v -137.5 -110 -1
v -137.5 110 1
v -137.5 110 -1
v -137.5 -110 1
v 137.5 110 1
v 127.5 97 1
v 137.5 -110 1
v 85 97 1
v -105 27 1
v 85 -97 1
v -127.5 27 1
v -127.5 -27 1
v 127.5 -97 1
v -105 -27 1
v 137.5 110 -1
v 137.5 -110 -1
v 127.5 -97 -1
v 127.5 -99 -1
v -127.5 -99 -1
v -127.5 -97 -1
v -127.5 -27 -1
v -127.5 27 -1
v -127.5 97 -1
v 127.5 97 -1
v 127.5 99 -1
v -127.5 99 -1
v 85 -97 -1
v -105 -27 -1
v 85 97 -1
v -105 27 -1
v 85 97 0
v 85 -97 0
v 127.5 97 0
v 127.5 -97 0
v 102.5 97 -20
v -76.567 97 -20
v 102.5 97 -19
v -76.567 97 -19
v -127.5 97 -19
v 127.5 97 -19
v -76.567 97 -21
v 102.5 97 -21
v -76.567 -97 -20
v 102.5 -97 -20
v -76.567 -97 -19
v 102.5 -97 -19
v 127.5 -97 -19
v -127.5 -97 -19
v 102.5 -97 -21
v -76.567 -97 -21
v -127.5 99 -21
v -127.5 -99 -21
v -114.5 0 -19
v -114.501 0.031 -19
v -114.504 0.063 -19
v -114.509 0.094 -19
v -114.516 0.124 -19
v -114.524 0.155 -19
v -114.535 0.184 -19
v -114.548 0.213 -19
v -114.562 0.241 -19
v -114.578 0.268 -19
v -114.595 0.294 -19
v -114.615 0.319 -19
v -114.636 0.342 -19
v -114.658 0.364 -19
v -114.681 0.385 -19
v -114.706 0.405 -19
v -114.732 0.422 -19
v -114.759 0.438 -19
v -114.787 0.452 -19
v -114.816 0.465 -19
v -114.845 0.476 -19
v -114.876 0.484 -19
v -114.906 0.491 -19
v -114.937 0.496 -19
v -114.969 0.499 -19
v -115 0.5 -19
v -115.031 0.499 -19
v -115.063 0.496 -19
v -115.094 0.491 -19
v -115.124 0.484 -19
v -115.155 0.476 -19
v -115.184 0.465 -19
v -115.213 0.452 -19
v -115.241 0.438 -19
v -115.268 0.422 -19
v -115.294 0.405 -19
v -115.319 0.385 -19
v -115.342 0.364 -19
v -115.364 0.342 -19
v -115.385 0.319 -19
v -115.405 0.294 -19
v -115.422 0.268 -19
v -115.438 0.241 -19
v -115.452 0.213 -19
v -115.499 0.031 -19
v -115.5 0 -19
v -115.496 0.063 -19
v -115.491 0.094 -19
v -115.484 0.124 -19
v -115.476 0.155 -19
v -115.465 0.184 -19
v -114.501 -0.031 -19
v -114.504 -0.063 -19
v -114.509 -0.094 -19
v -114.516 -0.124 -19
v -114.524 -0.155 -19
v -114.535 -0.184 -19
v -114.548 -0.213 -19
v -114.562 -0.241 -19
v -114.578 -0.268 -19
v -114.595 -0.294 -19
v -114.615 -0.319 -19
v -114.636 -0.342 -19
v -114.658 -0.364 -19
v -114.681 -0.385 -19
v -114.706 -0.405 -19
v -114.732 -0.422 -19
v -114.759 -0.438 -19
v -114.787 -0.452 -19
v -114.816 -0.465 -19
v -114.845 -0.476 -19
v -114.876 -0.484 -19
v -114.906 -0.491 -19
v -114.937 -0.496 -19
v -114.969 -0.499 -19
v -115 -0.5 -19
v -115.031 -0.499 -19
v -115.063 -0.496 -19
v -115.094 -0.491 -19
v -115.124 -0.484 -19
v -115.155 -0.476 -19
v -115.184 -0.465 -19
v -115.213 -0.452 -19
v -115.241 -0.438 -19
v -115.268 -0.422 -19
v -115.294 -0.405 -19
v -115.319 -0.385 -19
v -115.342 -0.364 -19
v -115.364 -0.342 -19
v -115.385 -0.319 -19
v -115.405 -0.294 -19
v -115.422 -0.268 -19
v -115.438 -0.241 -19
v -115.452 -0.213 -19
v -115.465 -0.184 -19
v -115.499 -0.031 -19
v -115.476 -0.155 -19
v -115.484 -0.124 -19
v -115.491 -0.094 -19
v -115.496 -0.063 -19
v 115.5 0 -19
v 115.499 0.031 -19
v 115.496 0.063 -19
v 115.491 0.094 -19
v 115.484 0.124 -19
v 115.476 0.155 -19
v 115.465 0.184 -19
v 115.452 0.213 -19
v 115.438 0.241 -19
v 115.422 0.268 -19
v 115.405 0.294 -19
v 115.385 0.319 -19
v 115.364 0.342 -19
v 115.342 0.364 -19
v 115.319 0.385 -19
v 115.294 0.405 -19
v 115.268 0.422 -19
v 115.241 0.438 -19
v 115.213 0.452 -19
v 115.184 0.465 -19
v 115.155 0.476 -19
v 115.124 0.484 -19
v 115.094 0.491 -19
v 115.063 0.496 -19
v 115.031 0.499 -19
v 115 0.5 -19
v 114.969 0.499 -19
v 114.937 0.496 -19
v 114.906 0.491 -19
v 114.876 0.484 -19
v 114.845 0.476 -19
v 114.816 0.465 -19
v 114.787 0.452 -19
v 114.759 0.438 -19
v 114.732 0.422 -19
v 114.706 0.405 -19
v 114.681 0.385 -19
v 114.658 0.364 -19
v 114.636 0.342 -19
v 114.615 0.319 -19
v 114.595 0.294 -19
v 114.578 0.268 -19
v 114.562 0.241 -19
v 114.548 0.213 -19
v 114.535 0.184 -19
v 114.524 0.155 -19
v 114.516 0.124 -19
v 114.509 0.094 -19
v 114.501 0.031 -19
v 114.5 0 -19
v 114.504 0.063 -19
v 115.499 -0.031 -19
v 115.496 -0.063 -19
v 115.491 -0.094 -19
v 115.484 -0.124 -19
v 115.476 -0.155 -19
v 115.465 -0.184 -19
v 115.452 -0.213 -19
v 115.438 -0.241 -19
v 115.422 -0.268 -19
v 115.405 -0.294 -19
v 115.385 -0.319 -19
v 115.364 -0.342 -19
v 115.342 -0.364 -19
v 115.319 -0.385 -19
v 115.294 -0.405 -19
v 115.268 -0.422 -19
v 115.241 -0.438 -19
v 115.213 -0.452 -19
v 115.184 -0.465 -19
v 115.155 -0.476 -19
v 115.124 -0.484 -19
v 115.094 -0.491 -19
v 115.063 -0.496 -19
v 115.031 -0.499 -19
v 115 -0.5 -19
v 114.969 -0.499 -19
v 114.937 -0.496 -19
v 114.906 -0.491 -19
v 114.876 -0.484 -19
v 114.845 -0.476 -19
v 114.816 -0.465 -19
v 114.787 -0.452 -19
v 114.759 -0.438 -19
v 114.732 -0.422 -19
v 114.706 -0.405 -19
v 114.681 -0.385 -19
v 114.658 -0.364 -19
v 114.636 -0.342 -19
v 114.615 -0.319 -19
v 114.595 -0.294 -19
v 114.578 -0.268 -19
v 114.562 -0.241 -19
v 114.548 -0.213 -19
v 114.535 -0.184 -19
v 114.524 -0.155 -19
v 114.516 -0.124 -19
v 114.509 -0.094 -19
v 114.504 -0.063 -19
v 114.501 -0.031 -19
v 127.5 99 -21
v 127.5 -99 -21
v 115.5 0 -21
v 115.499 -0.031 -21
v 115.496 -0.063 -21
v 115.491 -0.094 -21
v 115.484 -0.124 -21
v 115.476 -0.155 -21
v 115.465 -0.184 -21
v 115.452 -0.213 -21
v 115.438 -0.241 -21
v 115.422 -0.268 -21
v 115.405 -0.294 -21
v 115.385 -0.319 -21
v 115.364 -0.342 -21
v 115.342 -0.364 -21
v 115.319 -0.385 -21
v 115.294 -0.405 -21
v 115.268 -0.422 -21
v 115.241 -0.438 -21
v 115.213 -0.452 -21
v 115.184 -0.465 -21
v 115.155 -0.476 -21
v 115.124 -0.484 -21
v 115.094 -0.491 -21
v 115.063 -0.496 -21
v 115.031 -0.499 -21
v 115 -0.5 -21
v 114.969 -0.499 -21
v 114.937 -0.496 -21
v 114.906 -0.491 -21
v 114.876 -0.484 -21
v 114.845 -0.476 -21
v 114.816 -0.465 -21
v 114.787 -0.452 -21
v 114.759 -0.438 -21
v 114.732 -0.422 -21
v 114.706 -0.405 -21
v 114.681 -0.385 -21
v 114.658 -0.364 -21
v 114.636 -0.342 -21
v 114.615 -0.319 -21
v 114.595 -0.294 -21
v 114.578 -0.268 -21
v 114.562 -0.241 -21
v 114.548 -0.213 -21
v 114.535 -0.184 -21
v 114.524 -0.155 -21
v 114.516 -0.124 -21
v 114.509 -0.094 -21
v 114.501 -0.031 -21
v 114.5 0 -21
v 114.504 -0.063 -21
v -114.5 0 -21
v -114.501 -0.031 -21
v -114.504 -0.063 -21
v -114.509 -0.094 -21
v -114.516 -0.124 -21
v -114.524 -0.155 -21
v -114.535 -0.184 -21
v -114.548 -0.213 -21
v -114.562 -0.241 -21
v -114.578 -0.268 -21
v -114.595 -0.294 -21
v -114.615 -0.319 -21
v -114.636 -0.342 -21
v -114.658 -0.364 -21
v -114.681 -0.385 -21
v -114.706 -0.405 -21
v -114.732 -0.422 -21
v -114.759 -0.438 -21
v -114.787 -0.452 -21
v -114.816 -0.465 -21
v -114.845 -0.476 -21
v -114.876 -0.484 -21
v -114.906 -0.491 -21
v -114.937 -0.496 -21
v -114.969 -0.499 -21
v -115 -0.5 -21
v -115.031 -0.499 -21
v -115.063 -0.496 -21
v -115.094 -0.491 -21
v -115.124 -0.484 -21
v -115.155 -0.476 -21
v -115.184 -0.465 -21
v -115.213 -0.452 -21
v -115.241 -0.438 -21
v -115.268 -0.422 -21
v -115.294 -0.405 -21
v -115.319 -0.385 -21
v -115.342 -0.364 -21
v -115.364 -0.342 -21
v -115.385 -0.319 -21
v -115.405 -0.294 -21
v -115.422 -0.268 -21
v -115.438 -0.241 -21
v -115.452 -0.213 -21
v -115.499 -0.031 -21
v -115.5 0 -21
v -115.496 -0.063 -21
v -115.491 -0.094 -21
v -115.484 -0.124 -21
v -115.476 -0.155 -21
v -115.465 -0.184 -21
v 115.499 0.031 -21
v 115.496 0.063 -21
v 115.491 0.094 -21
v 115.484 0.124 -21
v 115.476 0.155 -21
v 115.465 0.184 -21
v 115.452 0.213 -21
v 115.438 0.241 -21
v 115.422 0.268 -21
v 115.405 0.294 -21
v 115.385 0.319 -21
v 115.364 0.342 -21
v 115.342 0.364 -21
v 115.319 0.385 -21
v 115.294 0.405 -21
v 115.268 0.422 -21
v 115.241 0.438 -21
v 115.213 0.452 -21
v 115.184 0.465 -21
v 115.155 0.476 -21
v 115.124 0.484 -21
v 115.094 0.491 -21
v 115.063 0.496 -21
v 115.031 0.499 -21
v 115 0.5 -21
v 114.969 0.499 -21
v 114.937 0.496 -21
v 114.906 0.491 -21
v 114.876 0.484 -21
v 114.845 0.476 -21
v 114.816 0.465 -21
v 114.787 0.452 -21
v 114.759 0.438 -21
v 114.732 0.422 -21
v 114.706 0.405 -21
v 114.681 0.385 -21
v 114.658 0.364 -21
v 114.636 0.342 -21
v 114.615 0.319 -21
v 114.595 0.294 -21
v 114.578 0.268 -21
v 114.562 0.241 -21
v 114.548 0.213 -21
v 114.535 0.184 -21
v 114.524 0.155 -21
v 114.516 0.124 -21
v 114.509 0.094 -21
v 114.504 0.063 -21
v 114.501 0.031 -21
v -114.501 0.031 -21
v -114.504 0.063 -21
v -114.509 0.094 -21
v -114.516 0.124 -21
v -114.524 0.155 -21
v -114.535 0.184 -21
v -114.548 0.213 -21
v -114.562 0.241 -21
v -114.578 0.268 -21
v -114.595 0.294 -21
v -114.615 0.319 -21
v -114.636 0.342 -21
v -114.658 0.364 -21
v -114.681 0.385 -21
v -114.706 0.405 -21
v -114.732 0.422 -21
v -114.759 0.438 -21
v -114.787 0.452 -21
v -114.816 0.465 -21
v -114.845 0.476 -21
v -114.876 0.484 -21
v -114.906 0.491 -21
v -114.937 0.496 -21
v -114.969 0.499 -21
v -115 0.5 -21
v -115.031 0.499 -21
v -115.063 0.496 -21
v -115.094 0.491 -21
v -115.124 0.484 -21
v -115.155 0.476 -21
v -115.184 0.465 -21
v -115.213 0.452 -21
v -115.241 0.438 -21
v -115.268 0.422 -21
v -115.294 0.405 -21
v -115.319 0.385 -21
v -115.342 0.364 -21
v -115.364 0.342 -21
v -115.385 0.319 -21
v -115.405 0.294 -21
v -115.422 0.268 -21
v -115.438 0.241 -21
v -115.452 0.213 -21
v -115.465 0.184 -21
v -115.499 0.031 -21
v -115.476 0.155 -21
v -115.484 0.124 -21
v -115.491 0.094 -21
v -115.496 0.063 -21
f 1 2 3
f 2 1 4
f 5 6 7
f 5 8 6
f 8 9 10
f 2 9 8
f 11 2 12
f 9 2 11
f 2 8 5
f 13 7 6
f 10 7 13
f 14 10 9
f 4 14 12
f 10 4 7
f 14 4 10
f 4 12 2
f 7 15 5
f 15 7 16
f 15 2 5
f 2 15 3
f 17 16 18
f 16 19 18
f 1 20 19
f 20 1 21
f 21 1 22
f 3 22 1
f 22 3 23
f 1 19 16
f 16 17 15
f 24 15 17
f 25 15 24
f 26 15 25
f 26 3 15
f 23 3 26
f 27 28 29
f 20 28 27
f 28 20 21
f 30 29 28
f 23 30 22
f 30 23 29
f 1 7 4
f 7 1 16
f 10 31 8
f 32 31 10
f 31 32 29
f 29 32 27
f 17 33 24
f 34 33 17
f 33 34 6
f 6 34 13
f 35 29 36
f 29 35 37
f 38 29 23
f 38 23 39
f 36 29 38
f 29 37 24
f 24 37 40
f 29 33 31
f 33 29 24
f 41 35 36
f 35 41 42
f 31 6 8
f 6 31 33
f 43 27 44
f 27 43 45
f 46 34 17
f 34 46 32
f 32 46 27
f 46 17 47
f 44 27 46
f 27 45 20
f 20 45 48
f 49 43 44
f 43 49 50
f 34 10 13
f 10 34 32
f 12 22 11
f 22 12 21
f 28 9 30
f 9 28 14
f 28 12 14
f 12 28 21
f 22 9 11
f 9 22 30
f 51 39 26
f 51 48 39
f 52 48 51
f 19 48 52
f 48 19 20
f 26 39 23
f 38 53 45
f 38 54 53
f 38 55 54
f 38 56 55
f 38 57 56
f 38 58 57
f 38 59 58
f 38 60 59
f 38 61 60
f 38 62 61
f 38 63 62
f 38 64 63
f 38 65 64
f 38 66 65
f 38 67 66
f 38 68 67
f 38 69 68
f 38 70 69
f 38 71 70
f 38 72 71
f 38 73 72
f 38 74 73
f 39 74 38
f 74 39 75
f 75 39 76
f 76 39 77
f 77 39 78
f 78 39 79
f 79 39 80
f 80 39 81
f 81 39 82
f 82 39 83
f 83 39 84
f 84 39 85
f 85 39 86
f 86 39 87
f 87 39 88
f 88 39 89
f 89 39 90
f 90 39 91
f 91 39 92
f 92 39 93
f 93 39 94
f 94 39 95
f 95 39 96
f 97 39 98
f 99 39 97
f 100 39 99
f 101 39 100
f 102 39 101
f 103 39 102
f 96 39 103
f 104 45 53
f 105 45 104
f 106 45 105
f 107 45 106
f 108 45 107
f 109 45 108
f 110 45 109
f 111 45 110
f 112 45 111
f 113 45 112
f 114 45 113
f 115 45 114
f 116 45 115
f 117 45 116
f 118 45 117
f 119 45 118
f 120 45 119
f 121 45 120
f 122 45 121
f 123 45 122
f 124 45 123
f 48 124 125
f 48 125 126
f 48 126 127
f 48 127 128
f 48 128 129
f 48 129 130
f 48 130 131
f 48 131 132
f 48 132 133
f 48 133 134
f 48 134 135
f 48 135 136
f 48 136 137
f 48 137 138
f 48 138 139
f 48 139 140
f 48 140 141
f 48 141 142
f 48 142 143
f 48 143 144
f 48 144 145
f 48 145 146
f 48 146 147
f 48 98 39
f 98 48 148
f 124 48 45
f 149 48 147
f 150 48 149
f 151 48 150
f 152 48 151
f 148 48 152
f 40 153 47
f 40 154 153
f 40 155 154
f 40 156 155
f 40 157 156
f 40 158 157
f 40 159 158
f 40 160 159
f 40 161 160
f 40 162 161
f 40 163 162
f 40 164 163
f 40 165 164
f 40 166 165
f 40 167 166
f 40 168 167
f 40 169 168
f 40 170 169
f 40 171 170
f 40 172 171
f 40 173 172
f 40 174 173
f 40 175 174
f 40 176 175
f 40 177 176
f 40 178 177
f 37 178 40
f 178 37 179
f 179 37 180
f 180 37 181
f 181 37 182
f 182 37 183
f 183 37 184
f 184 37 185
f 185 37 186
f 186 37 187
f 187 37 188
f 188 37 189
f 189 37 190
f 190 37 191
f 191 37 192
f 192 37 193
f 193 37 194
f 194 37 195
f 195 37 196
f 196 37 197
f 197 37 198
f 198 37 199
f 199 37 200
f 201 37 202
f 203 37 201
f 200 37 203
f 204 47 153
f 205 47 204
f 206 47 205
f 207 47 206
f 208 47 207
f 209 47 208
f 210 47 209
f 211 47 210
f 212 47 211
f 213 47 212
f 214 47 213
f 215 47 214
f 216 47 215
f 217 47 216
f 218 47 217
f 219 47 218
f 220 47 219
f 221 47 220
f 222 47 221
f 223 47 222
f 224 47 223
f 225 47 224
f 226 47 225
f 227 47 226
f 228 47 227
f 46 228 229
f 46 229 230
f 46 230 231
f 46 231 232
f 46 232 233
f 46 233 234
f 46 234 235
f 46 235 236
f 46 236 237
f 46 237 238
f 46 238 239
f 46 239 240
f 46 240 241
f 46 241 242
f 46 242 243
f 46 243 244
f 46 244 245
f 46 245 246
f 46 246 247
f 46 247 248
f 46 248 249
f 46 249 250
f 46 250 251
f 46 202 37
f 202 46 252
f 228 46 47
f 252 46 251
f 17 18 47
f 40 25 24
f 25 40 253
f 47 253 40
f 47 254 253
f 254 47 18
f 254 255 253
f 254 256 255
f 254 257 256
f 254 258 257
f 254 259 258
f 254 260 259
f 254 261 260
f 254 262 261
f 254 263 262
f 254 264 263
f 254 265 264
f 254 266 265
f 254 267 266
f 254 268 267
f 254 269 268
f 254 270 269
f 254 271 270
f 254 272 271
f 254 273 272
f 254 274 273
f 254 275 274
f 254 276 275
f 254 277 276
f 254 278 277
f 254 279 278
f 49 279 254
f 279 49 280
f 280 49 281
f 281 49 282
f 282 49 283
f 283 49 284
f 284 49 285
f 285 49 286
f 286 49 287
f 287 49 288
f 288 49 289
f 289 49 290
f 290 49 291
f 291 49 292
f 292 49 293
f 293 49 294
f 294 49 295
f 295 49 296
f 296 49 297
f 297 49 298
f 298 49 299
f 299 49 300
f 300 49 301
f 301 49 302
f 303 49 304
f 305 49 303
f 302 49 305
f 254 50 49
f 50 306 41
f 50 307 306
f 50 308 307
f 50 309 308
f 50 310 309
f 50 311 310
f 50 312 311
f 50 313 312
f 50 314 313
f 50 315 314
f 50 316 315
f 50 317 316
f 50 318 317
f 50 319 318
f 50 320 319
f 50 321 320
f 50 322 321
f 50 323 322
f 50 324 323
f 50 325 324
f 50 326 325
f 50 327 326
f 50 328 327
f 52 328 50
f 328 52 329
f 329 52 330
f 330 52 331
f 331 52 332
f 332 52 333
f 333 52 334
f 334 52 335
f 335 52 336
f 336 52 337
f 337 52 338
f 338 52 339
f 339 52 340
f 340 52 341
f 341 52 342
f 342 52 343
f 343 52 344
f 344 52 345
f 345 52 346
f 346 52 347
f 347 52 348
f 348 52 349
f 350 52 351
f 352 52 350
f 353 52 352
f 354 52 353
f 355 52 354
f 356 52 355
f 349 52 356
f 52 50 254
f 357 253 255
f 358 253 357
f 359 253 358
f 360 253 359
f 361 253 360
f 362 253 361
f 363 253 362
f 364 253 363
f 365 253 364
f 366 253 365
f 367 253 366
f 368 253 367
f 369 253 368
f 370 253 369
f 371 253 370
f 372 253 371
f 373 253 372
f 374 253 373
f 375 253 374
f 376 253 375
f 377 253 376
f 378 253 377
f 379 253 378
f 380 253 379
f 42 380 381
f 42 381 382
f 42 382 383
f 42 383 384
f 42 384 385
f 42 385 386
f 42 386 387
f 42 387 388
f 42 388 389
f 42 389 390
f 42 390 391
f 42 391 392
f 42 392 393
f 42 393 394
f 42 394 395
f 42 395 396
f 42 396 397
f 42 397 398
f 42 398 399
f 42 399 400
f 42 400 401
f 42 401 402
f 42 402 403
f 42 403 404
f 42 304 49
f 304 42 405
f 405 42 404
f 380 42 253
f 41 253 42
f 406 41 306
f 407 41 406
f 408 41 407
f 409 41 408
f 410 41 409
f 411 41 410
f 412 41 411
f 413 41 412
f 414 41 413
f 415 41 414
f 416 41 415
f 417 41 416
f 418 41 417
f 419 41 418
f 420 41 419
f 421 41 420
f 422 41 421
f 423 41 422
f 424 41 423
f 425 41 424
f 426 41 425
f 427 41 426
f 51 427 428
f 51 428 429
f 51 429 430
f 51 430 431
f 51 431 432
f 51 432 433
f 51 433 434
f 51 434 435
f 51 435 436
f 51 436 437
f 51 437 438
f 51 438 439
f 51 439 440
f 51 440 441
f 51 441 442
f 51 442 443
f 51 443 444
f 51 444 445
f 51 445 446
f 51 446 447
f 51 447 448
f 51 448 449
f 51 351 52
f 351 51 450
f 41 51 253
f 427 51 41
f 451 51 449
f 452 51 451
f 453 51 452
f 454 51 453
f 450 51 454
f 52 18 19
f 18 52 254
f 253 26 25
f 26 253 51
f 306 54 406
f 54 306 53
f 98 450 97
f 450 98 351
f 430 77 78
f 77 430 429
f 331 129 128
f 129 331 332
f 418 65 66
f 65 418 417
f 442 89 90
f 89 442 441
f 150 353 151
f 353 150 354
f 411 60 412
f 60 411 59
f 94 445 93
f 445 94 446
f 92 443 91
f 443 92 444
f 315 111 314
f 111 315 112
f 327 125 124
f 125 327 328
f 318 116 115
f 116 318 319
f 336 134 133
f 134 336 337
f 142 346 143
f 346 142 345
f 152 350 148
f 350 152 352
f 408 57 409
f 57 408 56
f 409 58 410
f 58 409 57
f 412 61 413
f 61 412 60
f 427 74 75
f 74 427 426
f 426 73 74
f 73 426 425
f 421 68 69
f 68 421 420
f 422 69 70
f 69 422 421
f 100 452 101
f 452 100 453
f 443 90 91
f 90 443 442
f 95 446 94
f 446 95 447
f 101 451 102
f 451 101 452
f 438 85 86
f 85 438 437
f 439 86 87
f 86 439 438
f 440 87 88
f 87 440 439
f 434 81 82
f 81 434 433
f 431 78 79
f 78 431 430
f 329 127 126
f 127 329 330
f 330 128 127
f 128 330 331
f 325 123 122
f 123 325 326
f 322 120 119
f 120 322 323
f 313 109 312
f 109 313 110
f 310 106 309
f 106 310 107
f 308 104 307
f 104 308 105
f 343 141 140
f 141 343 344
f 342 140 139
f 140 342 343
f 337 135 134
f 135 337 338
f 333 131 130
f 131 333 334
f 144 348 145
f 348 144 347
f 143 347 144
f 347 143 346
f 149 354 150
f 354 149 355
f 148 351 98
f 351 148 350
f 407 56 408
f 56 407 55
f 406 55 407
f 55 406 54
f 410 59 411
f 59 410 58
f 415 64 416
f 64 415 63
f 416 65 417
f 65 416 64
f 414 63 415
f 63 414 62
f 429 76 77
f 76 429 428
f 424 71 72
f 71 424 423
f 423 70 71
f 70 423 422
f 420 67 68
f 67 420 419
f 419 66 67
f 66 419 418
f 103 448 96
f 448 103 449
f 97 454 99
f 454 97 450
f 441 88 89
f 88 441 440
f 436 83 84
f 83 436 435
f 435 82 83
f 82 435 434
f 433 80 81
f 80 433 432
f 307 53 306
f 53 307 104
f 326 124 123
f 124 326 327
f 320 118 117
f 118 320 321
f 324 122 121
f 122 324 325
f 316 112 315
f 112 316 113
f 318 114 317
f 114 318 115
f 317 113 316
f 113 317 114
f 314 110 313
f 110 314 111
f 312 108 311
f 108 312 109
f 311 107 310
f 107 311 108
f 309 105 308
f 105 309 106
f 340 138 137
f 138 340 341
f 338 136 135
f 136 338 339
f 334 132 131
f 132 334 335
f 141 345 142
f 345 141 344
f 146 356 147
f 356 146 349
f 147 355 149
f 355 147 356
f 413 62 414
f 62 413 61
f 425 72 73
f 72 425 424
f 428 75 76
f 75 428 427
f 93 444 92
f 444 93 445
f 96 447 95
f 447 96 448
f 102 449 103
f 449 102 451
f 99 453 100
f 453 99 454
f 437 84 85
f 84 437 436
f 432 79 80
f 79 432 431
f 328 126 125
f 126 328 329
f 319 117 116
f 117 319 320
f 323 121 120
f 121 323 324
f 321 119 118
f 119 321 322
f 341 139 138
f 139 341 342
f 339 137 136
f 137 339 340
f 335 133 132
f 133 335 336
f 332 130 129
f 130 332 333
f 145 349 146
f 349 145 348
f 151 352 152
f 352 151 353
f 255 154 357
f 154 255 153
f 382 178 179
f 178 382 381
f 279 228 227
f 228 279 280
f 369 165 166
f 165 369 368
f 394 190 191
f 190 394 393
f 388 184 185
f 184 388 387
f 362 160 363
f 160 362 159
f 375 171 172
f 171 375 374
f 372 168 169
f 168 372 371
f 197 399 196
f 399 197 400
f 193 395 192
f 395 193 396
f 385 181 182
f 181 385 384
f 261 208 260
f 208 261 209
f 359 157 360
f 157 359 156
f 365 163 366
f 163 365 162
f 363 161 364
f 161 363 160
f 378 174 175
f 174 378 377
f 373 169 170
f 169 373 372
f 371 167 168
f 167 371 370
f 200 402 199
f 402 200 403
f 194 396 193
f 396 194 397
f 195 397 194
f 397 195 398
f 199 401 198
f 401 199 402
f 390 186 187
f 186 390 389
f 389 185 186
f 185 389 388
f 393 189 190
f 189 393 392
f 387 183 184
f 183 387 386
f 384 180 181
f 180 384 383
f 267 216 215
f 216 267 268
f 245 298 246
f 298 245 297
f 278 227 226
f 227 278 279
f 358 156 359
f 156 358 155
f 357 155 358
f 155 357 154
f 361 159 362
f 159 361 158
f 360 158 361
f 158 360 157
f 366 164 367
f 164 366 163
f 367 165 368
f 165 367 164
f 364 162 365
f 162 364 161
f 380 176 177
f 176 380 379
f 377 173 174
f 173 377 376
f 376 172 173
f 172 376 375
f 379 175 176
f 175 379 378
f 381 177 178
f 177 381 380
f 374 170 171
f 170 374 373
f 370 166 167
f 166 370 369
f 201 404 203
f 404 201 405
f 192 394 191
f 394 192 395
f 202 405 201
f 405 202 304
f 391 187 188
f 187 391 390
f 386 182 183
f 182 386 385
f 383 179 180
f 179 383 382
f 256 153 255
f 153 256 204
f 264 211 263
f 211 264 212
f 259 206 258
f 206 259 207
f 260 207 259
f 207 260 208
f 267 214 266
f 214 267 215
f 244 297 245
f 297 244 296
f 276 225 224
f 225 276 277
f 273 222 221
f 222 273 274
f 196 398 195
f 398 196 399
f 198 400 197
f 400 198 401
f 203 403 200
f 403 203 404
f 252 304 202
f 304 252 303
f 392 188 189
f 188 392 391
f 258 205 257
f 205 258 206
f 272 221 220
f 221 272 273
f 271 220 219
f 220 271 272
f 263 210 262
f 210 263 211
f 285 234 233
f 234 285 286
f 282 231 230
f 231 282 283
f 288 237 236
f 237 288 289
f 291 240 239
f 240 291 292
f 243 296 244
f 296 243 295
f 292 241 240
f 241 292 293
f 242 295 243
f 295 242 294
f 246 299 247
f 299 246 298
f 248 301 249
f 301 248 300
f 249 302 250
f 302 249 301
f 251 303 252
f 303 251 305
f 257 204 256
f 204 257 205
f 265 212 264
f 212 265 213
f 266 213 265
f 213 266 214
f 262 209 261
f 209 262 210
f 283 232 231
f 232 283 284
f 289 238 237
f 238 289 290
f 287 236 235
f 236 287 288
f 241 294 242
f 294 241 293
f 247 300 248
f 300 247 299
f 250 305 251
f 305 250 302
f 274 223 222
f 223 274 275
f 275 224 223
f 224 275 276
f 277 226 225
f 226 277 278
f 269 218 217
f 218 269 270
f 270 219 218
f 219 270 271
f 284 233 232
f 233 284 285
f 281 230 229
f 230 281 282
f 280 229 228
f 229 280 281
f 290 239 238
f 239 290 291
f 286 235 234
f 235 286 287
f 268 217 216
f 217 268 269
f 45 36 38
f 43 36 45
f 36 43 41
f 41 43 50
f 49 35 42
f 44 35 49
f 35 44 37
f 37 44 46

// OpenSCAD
m = 10; // centimeters

big_width = 27.5 * m;
big_height = 22 * m;

small_width = 25.5 * m;
small_height = 19.8 * m;

screws_width_d = 23 * m;

depth = 2 * m;
thickness = 0.2 * m;
screw_hole = 0.1 * m;

mounting_plate_hole_width = small_width/2-(small_width-screws_width_d);

main_plate_hole_width = small_width/6;
main_plate_hole_shift = small_width/2-main_plate_hole_width/2;

union() {

// main backplate
difference() {
    cube([big_width, big_height, thickness], center = true);
    translate([main_plate_hole_shift,0,0]) {
        cube([main_plate_hole_width, small_height-thickness*2, thickness*2], center = true);
    }
    translate([-main_plate_hole_shift-m,0,0]) {
        cube([main_plate_hole_width-2*m, small_height-thickness*2-14*m, thickness*2], center = true);
    }
}
    
// protrusion walls
translate([-small_width/2, -small_height/2, -depth]) {
    cube([small_width, thickness,  depth]);
}
translate([-small_width/2, small_height/2-thickness, -depth]) {
    cube([small_width, thickness,  depth]);
}

// mounting plate
translate([0,0,-depth]) {
    difference() {
        cube([small_width, small_height, thickness], center = true);
        translate([-screws_width_d/2,0,0]) {
            cylinder(h = thickness, d = screw_hole, $fn = 100, center = true);
        }
        translate([screws_width_d/2,0,0]) {
            cylinder(h = thickness*4, d = screw_hole, $fn = 100, center = true);
        }
        translate([-screws_width_d/6+0.1,0,0]) {
            cube([screws_width_d/3, small_height-thickness*2, thickness*2], center = true);
        }
        translate([mounting_plate_hole_width/2,0,0]) {
            cube([mounting_plate_hole_width, small_height-thickness*2, thickness*2], center = true);
        }
    }
}

} // union
